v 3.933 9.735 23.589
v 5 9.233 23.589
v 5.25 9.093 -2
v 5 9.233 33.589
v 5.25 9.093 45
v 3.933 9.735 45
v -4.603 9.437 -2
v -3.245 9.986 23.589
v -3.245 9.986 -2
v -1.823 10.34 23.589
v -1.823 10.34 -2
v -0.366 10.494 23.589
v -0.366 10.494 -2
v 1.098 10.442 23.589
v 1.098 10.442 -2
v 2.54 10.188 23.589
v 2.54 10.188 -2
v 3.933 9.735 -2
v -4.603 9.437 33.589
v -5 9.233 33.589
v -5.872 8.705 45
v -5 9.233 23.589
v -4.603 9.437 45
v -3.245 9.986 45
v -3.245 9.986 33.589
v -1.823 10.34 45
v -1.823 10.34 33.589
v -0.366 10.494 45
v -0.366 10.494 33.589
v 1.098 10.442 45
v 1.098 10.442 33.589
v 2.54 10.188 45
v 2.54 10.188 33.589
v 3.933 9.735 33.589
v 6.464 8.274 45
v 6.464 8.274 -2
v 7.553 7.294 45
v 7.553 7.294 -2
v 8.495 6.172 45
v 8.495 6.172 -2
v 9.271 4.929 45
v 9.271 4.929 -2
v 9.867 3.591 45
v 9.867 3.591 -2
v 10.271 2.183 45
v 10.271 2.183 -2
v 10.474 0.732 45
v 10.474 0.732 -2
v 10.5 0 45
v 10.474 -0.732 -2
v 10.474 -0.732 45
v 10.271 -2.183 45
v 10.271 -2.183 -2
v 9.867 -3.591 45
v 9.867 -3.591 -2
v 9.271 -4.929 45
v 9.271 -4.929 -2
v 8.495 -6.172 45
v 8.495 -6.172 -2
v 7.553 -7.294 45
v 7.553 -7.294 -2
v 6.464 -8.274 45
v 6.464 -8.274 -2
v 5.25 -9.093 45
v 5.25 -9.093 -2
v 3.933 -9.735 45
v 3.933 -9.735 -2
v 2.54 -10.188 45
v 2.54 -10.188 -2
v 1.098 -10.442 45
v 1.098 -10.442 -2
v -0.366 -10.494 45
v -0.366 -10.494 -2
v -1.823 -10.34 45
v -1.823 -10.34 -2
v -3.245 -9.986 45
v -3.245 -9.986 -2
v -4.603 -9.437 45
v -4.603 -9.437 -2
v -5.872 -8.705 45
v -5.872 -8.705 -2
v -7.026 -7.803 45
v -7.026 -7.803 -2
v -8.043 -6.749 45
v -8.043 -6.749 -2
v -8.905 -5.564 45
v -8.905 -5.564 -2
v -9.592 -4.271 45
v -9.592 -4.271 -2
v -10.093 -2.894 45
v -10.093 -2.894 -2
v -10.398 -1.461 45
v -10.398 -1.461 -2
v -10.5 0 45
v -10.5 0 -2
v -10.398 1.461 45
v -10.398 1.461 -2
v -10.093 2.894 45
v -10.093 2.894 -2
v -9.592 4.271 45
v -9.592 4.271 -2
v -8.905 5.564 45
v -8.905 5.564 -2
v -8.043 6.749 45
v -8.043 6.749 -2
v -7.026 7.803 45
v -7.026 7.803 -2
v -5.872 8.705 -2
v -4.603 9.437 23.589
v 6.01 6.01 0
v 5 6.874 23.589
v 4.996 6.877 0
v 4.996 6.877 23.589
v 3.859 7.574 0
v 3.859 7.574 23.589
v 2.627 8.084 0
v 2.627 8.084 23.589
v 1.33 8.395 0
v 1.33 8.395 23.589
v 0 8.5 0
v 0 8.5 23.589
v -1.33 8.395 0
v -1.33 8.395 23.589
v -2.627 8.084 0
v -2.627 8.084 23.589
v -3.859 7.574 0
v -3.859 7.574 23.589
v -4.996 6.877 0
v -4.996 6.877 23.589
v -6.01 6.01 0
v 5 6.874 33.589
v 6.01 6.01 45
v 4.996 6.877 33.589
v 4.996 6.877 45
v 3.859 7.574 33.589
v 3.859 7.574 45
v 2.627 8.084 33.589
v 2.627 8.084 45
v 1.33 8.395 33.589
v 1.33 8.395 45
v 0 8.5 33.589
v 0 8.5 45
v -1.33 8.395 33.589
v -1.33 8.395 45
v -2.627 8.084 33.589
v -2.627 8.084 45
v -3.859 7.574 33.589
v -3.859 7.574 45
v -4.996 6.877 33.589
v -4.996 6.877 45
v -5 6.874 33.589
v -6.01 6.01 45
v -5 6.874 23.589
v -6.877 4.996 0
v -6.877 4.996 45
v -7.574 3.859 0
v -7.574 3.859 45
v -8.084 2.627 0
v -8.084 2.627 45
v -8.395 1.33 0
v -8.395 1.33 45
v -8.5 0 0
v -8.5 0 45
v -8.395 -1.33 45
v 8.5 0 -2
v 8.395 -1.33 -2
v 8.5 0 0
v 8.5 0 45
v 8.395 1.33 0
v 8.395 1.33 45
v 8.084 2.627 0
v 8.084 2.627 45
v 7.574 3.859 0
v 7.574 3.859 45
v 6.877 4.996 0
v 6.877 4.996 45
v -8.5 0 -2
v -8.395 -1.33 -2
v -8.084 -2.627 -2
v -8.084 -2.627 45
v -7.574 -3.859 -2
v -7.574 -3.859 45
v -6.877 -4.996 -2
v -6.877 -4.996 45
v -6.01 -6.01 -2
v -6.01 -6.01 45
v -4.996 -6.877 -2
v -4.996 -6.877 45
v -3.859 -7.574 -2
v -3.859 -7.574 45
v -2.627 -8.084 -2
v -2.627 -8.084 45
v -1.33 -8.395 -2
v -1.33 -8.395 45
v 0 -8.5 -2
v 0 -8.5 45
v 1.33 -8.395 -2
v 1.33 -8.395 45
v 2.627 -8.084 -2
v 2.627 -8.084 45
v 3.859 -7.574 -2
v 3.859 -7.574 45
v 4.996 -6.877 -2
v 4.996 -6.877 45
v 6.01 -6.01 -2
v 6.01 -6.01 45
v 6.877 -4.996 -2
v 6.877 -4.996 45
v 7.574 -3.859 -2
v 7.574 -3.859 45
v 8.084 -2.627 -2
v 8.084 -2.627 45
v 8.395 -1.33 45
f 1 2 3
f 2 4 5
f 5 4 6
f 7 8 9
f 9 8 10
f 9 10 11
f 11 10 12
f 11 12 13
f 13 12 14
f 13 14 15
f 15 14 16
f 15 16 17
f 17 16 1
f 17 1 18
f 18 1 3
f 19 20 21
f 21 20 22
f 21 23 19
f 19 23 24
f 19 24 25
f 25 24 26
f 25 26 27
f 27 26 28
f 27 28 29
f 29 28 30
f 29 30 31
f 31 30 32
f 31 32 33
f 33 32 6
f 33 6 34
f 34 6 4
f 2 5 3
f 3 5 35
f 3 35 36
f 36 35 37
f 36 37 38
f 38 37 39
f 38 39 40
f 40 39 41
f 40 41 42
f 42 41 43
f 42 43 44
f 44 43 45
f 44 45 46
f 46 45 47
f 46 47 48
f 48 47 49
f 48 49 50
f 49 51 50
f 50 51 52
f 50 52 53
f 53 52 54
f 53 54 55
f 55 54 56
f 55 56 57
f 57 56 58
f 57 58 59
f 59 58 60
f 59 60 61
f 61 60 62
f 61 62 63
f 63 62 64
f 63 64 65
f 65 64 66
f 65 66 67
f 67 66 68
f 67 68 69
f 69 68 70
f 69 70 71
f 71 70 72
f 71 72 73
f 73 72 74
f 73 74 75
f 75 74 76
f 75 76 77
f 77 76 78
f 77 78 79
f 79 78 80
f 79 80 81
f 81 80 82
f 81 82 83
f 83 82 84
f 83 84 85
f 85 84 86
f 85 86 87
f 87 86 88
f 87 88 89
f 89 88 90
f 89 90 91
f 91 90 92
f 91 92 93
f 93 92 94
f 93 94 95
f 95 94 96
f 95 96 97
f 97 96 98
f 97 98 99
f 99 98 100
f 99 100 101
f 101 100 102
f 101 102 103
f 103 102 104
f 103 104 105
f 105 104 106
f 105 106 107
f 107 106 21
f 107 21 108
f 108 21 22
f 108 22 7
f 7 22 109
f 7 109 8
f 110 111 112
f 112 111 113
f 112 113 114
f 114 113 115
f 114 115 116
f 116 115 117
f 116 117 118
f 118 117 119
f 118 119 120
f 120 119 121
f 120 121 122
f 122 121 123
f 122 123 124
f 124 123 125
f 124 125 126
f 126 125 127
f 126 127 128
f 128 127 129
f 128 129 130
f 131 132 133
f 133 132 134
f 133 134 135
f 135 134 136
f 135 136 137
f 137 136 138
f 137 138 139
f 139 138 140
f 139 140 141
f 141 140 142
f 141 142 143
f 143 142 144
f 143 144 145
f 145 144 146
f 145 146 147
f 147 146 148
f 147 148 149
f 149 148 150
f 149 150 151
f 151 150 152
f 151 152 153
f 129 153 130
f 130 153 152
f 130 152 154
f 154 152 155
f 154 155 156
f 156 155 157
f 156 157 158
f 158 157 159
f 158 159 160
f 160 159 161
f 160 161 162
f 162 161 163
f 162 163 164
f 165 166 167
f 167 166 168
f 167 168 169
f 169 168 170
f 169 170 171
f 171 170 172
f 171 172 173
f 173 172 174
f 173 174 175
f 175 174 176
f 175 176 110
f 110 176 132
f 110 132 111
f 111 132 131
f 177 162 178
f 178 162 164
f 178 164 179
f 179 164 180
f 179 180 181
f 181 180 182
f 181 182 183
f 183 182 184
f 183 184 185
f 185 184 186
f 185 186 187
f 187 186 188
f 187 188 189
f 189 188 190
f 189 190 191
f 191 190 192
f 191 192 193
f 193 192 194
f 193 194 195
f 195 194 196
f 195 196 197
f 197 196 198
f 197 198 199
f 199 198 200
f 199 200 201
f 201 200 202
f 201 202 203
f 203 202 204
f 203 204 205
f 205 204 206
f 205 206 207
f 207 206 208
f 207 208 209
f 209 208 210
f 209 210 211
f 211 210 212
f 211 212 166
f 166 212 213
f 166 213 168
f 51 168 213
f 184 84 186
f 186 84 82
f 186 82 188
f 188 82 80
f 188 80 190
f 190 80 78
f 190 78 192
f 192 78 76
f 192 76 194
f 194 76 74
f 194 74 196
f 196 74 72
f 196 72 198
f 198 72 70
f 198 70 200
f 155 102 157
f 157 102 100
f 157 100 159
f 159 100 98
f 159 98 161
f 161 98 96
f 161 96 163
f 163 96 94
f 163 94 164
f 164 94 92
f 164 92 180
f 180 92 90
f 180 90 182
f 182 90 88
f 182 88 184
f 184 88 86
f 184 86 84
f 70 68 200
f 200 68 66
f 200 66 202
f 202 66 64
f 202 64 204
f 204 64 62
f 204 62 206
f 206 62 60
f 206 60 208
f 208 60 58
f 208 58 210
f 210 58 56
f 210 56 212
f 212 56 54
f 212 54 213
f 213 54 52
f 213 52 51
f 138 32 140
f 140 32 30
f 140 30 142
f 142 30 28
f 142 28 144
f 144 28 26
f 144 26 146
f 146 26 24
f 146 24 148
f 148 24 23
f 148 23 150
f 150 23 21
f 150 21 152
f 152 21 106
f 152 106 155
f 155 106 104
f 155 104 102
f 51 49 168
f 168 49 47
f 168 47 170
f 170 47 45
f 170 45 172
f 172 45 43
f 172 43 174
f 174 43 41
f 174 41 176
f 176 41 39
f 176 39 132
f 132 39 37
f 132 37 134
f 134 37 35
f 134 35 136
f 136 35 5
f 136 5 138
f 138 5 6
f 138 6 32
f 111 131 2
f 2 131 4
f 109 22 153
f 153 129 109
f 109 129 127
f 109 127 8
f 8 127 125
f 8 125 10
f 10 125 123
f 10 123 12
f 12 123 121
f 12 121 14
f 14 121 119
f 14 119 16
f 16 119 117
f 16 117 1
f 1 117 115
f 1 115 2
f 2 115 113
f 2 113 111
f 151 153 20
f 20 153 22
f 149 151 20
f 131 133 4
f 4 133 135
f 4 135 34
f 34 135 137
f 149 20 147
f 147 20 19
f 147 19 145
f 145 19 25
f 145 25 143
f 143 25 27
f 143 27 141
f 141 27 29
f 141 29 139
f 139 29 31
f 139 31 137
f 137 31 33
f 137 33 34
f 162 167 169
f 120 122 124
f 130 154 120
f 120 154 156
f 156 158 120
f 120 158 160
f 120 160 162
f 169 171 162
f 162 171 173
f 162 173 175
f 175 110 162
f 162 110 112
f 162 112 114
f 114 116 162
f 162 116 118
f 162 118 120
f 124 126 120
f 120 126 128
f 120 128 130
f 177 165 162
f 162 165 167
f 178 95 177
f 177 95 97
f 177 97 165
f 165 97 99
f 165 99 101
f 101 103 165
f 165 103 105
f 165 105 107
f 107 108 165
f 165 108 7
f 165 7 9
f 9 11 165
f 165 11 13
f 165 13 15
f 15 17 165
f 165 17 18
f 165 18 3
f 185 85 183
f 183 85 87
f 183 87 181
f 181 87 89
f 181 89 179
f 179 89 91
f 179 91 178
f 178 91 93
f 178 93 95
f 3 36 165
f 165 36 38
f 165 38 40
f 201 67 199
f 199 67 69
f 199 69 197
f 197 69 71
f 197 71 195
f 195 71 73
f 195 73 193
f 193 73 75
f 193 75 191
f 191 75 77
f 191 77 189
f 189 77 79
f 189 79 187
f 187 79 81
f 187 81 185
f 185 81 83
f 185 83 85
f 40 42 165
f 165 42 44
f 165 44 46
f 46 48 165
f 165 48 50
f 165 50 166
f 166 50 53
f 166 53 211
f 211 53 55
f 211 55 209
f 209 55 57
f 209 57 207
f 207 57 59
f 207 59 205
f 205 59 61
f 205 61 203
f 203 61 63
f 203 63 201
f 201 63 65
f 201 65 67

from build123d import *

# Parameters (mm, degrees)
SKETCH1_R           = 10.5
SKETCH1_R_2         = 8.5
BOSS_EXTRUDE1_DEPTH = 45
SKETCH2_W           = 10
SKETCH2_H           = 10
CUT_EXTRUDE1_DEPTH  = 40
BOSS_EXTRUDE4_START = 2
SKETCH6_R           = 10.5
BOSS_EXTRUDE4_DEPTH = 2


with BuildPart() as part:
    # Sketch1 → Boss-Extrude1 (new body)
    with BuildSketch(Plane.XY):
        with Locations(Location((0, 0, 0), (0, 0, 180))):
            Circle(SKETCH1_R)
        with Locations(Location((0, 0, 0), (0, 0, 180))):
            Circle(SKETCH1_R_2, mode=Mode.SUBTRACT)
    extrude(amount=BOSS_EXTRUDE1_DEPTH)

    # Sketch2 → Cut-Extrude1 (cut)
    with BuildSketch(Plane(origin=(0, 0, 0), x_dir=(1, 0, 0), z_dir=(0, 1, 0))):
        with Locations((0, -28.58915915)):
            Rectangle(SKETCH2_W, SKETCH2_H)
    extrude(amount=CUT_EXTRUDE1_DEPTH, mode=Mode.SUBTRACT)

    # Sketch6 → Boss-Extrude4 (add)
    with BuildSketch(Plane(origin=(0, 0, 0), x_dir=(-1, 0, 0), z_dir=(0, 0, -1)).offset(BOSS_EXTRUDE4_START)):
        Circle(SKETCH6_R)
        with BuildLine():
            Line((-8.5, 0), (8.5, 0))
            ThreePointArc((8.5, 0), (0, -8.5), (-8.5, 0))
        make_face(mode=Mode.SUBTRACT)
    extrude(amount=-BOSS_EXTRUDE4_DEPTH)


solid = part.part
